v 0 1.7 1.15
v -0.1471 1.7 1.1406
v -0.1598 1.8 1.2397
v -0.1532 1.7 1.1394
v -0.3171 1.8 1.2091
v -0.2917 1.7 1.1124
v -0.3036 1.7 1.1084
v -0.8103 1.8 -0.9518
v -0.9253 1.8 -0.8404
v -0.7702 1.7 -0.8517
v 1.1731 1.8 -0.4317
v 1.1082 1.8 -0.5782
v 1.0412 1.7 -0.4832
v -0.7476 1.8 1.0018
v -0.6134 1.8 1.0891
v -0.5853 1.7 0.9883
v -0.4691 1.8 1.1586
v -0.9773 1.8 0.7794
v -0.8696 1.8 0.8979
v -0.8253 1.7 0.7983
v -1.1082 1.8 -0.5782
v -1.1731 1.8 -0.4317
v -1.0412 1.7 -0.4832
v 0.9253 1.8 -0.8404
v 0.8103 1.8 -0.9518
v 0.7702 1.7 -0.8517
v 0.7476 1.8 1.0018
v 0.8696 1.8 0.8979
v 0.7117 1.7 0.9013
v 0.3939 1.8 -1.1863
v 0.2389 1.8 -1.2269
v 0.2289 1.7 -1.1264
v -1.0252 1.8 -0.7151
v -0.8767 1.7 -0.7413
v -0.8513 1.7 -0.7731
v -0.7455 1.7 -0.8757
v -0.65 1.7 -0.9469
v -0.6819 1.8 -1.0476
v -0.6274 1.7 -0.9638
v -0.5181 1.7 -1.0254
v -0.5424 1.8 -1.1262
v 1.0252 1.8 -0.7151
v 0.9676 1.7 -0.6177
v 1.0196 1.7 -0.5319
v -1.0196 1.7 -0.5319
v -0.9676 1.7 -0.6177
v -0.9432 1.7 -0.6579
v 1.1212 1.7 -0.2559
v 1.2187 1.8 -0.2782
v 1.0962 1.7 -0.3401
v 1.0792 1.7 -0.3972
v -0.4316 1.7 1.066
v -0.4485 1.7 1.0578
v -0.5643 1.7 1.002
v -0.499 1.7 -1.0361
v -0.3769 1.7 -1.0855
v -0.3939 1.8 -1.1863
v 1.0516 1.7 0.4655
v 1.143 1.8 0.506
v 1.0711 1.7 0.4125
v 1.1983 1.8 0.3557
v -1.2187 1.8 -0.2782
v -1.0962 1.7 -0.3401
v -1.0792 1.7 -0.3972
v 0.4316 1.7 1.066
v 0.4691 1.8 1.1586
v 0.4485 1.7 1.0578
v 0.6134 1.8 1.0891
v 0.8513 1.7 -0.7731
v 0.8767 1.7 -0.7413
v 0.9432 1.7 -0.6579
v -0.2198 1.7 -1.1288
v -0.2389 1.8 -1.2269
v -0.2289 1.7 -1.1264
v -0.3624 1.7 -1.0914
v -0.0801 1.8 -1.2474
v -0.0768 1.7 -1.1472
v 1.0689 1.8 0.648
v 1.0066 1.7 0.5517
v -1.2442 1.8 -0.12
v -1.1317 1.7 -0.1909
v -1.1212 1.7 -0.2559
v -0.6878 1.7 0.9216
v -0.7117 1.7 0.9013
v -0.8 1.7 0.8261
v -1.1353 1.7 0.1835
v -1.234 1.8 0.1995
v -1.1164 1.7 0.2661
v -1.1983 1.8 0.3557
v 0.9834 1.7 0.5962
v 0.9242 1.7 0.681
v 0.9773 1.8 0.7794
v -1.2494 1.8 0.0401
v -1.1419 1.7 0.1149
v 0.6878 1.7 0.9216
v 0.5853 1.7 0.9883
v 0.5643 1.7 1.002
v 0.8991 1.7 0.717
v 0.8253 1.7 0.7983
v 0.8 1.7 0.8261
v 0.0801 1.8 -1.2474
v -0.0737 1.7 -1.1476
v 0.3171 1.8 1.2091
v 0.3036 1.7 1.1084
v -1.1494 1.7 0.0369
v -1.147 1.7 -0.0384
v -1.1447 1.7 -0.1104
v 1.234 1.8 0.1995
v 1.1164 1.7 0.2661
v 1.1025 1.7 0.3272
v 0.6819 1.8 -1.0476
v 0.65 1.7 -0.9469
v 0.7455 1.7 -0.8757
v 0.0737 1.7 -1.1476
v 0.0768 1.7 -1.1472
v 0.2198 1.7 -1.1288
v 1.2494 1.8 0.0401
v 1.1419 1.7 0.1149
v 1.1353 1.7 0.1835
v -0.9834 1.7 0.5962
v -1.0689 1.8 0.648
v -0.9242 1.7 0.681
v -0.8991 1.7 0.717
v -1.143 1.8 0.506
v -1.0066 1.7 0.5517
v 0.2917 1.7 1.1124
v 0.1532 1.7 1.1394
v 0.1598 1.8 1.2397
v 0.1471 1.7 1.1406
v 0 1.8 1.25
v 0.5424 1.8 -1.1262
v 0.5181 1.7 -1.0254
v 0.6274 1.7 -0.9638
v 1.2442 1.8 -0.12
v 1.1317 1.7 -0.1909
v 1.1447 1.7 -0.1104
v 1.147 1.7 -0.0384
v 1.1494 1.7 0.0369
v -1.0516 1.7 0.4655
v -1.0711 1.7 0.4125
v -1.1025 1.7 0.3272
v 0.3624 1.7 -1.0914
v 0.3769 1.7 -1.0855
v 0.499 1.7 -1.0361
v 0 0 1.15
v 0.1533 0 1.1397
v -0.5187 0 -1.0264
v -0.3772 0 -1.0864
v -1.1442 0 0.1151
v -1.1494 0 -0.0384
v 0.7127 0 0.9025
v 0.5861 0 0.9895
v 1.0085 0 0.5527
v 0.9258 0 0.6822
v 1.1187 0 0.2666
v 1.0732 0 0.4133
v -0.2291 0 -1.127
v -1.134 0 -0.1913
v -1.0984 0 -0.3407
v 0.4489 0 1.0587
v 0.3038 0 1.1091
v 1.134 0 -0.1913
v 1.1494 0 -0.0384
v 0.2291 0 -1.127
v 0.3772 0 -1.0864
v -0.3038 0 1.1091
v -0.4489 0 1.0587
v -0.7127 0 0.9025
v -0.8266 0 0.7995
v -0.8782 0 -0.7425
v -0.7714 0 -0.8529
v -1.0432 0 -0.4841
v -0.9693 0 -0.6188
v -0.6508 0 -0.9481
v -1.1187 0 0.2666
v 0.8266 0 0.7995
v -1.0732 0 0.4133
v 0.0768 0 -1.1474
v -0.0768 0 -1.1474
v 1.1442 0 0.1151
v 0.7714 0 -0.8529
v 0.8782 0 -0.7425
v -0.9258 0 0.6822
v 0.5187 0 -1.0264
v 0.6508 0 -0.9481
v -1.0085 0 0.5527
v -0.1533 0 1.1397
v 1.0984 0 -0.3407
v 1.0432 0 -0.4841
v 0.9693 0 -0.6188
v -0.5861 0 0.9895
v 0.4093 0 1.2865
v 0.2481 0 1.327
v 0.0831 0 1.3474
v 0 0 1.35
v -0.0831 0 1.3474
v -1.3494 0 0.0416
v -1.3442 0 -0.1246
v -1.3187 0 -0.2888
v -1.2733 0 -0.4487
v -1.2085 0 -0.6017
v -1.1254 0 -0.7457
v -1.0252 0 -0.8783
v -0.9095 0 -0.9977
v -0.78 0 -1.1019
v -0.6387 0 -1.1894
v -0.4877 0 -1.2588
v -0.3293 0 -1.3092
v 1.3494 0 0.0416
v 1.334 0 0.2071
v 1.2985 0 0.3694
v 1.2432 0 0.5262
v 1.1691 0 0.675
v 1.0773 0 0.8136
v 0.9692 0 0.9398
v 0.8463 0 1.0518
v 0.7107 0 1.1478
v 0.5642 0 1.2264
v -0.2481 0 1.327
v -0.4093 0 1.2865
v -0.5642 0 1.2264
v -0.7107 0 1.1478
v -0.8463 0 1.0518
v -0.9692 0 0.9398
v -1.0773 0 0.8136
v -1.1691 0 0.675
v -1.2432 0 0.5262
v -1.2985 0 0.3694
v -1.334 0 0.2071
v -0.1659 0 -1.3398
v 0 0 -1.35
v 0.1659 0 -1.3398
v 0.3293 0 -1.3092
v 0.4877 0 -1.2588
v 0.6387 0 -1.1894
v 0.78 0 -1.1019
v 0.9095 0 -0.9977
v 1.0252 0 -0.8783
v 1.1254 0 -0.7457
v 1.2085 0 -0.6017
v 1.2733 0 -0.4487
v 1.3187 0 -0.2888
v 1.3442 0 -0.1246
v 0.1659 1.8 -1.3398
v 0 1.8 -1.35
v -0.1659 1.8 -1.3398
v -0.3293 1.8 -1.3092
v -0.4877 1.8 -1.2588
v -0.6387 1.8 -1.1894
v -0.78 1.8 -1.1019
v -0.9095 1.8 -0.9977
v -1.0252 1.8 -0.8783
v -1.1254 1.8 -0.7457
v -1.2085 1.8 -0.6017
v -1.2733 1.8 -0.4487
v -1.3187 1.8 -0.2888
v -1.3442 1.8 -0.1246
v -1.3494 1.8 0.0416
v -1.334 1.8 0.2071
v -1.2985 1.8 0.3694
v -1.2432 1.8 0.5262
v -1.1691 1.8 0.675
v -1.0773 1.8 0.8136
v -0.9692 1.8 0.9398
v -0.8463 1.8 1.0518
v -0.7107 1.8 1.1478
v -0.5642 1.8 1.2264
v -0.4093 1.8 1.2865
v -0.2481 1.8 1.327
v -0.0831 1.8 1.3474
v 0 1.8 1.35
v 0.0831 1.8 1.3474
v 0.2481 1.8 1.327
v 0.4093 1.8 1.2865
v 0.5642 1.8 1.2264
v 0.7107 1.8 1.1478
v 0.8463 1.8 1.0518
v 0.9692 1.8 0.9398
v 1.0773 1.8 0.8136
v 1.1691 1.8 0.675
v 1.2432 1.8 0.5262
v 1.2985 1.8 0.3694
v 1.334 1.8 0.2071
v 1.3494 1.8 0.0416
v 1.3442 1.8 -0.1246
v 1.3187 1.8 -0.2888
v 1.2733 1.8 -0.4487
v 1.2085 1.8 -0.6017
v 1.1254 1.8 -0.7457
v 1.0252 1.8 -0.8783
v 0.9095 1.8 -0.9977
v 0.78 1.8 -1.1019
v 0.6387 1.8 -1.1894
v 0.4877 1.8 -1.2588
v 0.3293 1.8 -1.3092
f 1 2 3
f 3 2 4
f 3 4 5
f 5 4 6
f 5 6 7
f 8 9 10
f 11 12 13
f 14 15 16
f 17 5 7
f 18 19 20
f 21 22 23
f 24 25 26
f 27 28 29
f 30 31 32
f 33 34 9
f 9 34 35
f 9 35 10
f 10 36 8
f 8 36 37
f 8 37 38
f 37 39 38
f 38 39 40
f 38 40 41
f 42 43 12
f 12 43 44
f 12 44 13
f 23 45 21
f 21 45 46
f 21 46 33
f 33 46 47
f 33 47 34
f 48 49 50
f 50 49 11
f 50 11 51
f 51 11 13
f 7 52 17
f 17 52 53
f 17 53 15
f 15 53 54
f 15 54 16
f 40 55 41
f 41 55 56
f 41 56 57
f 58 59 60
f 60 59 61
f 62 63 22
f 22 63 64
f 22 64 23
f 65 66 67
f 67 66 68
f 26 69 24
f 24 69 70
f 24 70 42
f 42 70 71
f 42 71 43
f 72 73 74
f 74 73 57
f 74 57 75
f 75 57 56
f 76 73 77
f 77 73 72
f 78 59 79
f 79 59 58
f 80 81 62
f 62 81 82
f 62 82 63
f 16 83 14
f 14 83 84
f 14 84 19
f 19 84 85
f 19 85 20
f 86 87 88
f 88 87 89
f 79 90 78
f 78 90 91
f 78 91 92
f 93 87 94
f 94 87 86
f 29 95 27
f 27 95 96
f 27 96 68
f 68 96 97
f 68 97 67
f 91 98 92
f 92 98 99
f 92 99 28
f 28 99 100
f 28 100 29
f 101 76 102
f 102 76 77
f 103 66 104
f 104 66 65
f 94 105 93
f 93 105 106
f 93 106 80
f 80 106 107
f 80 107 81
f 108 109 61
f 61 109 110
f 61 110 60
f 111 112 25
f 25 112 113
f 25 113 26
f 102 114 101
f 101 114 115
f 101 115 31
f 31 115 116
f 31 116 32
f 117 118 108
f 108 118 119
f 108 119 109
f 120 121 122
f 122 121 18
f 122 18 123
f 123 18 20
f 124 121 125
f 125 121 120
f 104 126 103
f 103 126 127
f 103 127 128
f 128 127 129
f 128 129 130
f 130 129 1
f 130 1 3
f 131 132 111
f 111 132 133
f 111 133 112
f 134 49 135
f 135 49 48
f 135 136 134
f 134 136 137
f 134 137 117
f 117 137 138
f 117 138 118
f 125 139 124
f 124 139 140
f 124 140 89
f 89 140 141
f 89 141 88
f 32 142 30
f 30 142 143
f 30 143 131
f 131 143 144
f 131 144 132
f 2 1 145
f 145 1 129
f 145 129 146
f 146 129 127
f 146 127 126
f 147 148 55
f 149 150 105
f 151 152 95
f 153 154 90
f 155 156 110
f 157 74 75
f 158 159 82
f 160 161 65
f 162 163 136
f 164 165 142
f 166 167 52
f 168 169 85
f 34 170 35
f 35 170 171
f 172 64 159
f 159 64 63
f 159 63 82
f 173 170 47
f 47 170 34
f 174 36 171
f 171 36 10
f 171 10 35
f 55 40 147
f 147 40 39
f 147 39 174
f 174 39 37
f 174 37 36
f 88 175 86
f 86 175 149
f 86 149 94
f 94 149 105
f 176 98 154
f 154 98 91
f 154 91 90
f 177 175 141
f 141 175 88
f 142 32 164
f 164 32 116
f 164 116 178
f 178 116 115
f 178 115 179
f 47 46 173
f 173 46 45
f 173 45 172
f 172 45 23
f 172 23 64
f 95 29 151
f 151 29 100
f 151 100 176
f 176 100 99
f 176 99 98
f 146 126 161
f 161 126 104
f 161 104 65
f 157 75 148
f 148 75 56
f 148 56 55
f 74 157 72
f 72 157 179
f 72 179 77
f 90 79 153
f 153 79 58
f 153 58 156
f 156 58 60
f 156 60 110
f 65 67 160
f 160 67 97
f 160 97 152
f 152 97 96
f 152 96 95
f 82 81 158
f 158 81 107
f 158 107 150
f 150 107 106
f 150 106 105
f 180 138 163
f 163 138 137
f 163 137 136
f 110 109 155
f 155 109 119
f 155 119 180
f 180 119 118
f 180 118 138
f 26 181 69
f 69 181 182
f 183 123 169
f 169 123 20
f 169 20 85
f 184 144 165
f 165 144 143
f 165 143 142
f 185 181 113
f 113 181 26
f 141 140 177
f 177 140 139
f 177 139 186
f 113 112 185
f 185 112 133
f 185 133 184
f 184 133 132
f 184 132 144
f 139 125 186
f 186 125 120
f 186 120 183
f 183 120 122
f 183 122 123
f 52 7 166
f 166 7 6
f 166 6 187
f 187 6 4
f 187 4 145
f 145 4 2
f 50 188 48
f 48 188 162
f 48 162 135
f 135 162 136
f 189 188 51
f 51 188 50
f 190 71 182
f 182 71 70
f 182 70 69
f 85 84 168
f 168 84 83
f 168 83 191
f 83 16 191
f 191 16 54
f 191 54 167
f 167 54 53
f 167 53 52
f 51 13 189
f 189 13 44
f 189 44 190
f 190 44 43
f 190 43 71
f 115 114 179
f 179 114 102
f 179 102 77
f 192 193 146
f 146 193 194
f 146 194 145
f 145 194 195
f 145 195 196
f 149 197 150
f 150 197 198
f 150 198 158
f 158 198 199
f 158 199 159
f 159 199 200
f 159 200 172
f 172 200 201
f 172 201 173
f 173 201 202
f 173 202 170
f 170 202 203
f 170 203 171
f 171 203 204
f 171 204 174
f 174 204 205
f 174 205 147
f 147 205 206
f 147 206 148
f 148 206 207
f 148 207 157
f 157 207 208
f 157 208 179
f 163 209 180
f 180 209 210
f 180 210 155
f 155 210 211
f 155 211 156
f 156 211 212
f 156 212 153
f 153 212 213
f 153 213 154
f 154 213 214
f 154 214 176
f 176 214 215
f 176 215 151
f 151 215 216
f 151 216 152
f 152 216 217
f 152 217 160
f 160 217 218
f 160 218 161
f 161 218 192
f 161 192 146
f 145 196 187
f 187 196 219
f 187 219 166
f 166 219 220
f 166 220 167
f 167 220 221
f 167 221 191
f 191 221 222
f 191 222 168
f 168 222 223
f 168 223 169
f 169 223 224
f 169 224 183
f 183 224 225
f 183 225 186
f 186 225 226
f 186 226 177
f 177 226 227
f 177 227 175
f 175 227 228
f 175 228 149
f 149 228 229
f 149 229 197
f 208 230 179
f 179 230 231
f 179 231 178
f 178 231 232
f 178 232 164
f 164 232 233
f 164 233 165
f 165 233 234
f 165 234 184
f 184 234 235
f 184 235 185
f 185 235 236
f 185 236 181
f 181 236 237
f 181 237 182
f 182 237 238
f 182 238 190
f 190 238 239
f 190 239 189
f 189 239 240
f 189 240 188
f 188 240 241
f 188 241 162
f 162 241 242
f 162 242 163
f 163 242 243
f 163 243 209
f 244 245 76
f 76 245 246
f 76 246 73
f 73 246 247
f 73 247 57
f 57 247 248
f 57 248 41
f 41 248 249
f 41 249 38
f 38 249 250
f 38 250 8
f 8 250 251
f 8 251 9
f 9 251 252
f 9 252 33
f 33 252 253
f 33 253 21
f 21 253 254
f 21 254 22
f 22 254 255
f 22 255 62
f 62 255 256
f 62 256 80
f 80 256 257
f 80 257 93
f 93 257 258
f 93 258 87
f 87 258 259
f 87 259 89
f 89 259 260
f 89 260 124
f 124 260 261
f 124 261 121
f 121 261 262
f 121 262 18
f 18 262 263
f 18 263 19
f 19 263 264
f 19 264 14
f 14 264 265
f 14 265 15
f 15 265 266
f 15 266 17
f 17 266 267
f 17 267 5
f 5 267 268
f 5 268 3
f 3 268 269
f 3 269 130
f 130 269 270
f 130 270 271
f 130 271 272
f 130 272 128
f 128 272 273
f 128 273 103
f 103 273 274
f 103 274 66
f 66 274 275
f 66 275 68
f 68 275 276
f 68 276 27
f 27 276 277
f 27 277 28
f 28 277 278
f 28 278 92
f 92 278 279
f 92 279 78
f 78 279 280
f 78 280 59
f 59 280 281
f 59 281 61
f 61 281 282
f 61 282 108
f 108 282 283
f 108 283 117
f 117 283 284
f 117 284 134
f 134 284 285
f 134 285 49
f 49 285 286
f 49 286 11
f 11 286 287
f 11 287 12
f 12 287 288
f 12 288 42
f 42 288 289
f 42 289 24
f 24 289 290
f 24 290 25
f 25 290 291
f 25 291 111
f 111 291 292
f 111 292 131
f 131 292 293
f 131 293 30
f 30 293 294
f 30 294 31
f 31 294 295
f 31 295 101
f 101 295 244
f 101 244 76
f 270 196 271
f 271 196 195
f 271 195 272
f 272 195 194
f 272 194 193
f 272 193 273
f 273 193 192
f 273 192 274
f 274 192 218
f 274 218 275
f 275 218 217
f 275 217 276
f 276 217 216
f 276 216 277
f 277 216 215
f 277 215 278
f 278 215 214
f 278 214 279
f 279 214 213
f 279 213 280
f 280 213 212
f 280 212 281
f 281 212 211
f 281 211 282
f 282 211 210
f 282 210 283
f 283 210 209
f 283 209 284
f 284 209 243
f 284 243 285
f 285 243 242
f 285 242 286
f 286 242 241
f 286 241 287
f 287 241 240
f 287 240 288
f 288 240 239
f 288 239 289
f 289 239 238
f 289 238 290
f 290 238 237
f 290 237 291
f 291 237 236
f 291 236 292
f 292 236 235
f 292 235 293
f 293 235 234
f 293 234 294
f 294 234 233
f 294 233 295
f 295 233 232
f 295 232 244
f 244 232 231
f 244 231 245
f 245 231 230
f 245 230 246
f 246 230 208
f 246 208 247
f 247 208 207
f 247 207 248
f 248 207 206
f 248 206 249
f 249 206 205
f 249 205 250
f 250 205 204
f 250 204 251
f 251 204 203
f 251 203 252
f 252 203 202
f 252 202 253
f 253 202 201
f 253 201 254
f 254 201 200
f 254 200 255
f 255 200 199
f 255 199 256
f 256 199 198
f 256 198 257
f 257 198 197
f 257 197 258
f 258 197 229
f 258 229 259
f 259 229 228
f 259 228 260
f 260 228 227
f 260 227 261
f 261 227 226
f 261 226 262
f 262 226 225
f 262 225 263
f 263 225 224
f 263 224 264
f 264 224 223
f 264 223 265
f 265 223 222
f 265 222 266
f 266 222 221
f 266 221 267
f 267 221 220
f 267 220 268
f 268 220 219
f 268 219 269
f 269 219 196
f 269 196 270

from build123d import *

# Parameters (mm, degrees)
SKETCH1_R           = 1.35
BOSS_EXTRUDE1_DEPTH = 1.8
CUT_EXTRUDE1_REACH  = 3.8
SKETCH2_R           = 1.15
CHAMFER1_SIZE       = 0.1


with BuildPart() as part:
    # Sketch1 → Boss-Extrude1 (new body)
    with BuildSketch(Plane(origin=(0, 0, 0), x_dir=(1, 0, 0), z_dir=(0, 1, 0))):
        Circle(SKETCH1_R)
    extrude(amount=BOSS_EXTRUDE1_DEPTH)

    # Sketch2 → Cut-Extrude1 (cut, up to next)
    with BuildSketch(Plane(origin=(0, 1.8, 0), x_dir=(1, 0, 0), z_dir=(0, 1, 0)), mode=Mode.PRIVATE) as cut_extrude1_sk1:
        Circle(SKETCH2_R)
    cut_extrude1_tool1 = extrude(cut_extrude1_sk1.sketch, amount=-CUT_EXTRUDE1_REACH, mode=Mode.PRIVATE) & part.part
    add(cut_extrude1_tool1.solids().sort_by_distance((0, 1.8, 0))[0], mode=Mode.SUBTRACT)

    # Chamfer1
    chamfer1_edges = [part.edges().sort_by_distance(p)[0] for p in [
        (-1.15, 1.8, 0),
    ]]
    chamfer(chamfer1_edges, length=CHAMFER1_SIZE)


solid = part.part
